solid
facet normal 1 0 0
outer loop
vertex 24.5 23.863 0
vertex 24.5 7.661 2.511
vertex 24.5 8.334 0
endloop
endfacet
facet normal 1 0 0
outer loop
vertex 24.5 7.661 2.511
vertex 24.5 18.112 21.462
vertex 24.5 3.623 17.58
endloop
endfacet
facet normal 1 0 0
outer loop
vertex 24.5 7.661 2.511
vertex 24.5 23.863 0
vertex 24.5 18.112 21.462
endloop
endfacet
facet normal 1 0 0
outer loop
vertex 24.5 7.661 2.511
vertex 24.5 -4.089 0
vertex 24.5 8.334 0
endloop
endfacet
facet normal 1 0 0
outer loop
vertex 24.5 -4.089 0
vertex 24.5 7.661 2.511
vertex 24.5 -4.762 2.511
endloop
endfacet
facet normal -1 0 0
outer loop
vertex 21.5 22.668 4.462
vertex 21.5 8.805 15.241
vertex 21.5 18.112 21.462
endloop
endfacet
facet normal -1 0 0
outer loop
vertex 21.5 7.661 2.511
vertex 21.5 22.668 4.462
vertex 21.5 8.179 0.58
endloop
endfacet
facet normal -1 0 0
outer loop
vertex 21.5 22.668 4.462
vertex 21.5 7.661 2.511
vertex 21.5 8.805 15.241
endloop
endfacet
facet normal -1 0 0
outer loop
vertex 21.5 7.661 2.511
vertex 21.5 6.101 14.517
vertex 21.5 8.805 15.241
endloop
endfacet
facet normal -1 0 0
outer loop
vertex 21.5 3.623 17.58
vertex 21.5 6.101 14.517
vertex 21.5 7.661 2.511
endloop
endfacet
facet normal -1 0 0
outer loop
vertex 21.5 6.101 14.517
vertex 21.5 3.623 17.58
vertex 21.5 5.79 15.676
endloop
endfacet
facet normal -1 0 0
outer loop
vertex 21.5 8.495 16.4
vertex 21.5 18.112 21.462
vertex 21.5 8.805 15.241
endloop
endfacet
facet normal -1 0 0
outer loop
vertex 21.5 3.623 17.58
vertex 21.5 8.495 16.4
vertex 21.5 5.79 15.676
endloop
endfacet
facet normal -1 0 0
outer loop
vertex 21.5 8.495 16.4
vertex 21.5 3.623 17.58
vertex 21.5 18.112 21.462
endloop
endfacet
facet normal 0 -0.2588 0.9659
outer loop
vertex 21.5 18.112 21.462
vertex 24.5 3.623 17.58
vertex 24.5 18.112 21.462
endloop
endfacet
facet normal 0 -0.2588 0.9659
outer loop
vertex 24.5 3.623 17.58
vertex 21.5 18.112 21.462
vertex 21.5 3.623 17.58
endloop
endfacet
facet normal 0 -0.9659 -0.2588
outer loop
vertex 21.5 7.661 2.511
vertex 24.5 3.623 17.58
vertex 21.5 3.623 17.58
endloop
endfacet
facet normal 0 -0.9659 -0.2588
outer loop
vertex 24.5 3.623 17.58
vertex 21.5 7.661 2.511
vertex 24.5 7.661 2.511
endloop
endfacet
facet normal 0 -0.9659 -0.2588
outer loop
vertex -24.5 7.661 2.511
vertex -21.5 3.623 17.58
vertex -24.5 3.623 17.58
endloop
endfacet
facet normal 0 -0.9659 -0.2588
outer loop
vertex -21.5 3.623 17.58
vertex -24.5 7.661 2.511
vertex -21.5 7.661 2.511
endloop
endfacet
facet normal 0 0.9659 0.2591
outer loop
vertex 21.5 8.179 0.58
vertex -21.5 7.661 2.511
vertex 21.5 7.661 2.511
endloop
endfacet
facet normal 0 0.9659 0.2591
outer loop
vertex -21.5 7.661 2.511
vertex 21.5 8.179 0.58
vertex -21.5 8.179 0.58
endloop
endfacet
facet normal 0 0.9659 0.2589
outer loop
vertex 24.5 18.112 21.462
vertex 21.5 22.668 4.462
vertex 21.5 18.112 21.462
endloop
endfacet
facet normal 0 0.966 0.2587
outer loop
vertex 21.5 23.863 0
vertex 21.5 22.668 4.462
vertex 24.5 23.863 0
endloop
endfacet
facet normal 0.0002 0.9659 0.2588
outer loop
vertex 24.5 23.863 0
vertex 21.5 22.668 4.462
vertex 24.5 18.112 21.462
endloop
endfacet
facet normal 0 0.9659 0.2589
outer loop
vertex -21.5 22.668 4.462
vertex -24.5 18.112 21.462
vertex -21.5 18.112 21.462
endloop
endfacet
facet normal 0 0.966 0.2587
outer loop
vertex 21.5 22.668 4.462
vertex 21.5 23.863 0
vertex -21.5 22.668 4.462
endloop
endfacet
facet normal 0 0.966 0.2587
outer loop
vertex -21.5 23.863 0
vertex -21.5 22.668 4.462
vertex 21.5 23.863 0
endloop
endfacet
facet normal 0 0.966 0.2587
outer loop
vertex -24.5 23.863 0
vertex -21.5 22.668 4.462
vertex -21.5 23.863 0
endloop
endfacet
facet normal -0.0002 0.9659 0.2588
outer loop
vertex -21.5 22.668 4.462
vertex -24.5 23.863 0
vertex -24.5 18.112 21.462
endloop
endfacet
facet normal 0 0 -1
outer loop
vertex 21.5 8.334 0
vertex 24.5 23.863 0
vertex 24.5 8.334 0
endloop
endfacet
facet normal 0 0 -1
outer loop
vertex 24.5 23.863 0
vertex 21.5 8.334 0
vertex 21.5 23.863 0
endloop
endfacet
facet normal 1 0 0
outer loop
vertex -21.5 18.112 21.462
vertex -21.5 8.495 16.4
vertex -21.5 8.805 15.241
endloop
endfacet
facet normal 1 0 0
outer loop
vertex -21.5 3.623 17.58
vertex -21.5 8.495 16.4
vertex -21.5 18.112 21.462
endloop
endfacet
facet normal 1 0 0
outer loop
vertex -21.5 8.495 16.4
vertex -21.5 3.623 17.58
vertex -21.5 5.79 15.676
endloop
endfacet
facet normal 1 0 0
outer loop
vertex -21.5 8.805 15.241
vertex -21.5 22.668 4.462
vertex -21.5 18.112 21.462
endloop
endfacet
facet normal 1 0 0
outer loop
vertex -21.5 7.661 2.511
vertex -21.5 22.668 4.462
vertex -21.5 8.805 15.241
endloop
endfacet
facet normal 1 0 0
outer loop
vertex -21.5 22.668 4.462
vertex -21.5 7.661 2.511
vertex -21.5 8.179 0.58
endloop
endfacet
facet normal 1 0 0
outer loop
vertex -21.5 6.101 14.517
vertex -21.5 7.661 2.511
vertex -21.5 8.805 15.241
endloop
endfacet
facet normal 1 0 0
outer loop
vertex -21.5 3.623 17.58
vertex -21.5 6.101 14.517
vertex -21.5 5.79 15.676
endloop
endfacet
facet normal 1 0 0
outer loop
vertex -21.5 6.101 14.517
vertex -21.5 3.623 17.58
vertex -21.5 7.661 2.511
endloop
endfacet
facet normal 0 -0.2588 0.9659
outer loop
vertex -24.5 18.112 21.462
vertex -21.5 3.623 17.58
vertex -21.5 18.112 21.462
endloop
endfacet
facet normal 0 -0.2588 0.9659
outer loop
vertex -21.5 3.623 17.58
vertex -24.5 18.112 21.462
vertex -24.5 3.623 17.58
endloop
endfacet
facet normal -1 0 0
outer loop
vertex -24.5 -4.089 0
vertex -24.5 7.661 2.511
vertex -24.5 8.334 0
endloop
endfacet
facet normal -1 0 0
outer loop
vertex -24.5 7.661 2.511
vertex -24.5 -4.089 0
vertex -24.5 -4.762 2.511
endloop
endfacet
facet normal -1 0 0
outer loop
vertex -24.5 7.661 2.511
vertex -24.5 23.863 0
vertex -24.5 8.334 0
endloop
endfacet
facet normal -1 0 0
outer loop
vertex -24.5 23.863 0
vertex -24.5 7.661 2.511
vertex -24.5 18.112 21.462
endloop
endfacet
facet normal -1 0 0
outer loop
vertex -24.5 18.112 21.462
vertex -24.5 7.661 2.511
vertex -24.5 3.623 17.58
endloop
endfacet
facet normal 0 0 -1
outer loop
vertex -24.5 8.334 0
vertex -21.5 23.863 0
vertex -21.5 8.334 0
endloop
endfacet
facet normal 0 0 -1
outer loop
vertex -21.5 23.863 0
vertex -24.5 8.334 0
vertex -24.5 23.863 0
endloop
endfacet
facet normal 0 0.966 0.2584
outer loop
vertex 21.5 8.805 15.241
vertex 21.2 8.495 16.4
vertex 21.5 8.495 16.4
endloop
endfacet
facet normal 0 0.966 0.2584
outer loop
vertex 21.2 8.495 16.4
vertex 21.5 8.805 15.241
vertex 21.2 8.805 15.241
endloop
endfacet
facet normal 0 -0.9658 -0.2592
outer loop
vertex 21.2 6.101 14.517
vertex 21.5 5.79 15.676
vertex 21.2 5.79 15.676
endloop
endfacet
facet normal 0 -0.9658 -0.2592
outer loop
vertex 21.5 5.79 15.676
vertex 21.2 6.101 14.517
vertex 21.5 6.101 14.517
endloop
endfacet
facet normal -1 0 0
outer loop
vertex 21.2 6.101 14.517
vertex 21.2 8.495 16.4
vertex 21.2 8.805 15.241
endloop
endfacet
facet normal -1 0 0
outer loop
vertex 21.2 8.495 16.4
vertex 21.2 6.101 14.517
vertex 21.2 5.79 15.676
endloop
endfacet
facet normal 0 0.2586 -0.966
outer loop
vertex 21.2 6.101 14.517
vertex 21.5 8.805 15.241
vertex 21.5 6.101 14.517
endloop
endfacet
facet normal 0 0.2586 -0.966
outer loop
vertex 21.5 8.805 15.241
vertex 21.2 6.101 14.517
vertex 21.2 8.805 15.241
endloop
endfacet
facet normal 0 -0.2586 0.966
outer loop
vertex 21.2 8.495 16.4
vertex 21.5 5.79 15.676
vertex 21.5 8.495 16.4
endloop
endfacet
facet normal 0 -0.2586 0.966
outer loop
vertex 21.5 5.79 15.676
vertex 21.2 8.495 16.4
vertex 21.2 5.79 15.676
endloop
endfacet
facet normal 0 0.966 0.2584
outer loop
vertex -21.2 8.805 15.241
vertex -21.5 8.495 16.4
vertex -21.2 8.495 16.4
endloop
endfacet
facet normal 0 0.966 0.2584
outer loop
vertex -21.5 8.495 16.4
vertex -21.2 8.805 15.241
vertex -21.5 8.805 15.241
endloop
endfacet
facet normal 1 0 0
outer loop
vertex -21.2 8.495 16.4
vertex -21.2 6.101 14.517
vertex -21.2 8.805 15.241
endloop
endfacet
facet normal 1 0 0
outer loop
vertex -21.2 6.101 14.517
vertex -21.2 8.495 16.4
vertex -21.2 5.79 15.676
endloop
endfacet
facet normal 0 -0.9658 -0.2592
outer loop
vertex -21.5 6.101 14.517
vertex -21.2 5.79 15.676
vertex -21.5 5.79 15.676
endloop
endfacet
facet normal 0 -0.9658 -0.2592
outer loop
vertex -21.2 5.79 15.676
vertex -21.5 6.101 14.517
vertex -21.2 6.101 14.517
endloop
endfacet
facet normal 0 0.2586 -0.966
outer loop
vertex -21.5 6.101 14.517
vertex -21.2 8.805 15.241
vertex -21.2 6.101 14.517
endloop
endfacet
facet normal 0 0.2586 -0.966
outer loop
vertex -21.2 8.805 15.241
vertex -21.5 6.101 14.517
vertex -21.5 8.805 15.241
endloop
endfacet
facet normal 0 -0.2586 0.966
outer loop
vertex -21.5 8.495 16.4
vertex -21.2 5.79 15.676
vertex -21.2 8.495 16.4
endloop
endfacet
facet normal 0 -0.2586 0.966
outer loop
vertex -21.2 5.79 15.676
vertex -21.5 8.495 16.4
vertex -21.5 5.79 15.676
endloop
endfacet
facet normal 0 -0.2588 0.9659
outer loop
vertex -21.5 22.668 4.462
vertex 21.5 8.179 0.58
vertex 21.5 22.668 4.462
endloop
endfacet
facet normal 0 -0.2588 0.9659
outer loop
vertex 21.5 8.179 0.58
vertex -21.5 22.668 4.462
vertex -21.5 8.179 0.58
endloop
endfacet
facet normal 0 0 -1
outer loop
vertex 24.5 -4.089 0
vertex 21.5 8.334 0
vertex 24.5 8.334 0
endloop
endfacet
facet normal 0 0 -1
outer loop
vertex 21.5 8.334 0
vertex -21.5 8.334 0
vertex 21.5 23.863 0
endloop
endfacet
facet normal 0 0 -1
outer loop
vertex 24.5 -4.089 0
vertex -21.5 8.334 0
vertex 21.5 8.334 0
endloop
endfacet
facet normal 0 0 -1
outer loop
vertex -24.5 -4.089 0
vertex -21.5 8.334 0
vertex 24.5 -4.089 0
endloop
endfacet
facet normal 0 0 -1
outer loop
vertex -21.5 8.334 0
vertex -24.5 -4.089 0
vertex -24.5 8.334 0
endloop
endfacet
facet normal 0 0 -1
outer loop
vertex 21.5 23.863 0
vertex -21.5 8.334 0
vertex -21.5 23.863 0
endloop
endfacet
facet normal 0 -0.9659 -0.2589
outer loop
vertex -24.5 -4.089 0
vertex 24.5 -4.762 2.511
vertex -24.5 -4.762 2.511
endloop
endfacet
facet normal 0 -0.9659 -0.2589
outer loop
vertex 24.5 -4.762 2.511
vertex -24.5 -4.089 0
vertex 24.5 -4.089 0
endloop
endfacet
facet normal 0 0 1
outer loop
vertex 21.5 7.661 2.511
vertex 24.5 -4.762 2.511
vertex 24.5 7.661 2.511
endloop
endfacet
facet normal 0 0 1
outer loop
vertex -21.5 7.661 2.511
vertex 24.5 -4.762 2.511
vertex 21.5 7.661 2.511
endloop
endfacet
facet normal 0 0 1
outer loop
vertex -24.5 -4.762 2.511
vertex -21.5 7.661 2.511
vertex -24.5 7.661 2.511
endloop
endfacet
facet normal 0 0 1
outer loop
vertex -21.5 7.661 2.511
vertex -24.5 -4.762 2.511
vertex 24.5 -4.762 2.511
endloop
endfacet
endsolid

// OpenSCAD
// =============================================================================
//  Triskin case — EASEL (the stand)
// =============================================================================
//
//  Open this file and press F6 to render just the easel, or:
//      openscad -o easel.stl easel.scad
//
//  This is a thin wrapper: all the geometry genuinely lives in case.scad, which
//  holds the bezel, the plate and the easel, and case.scad in turn includes
//  board.scad for the module.  Setting CASE_LIB first stops case.scad rendering
//  its own default part.
//
//  PRINT ORIENTATION — already applied below, so what you see is what you
//  slice: the desk face is flat on the bed, exactly at Z = 0, and the cheeks
//  rise almost vertically.  Support-free.
//
//  In its WORKING orientation the easel holds the screen at `stand` degrees,
//  with the toe forward for stability.  To see that, comment out the rotate()
//  and the translate() on the last line.
// =============================================================================

CASE_LIB = true;
include <case.scad>

easel_print();
